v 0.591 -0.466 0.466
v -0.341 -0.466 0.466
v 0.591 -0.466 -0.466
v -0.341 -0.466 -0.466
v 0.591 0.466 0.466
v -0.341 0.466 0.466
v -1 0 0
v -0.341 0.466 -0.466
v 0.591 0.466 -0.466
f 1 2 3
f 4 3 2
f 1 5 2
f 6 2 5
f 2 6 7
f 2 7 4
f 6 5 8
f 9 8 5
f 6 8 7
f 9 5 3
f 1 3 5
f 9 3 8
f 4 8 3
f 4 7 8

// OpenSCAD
polyhedron( points = [[-0.340990257710407, -0.465990257713473, 0.465990257692552], [-0.340990257668564, 0.46599025773872, 0.465990257692552], [0.590990257699949, 0.465990257655037, 0.465990257692552], [0.590990257658103, -0.465990257713473, 0.465990257692552], [-0.340990257668564, -0.46599025767163, -0.465990257675958], [-0.340990257626722, 0.465990257696883, -0.465990257675958], [0.590990257658103, 0.465990257613194, -0.465990257675958], [0.590990257658103, -0.46599025767163, -0.465990257717805], [-1.0, 6.63699892618992e-11, -2.45268833380921e-11]], faces = [[0, 4, 7, 3], [0, 3, 2, 1], [0, 1, 8], [0, 8, 4], [1, 2, 6, 5], [1, 5, 8], [2, 3, 7, 6], [4, 5, 6, 7], [4, 8, 5]]);
